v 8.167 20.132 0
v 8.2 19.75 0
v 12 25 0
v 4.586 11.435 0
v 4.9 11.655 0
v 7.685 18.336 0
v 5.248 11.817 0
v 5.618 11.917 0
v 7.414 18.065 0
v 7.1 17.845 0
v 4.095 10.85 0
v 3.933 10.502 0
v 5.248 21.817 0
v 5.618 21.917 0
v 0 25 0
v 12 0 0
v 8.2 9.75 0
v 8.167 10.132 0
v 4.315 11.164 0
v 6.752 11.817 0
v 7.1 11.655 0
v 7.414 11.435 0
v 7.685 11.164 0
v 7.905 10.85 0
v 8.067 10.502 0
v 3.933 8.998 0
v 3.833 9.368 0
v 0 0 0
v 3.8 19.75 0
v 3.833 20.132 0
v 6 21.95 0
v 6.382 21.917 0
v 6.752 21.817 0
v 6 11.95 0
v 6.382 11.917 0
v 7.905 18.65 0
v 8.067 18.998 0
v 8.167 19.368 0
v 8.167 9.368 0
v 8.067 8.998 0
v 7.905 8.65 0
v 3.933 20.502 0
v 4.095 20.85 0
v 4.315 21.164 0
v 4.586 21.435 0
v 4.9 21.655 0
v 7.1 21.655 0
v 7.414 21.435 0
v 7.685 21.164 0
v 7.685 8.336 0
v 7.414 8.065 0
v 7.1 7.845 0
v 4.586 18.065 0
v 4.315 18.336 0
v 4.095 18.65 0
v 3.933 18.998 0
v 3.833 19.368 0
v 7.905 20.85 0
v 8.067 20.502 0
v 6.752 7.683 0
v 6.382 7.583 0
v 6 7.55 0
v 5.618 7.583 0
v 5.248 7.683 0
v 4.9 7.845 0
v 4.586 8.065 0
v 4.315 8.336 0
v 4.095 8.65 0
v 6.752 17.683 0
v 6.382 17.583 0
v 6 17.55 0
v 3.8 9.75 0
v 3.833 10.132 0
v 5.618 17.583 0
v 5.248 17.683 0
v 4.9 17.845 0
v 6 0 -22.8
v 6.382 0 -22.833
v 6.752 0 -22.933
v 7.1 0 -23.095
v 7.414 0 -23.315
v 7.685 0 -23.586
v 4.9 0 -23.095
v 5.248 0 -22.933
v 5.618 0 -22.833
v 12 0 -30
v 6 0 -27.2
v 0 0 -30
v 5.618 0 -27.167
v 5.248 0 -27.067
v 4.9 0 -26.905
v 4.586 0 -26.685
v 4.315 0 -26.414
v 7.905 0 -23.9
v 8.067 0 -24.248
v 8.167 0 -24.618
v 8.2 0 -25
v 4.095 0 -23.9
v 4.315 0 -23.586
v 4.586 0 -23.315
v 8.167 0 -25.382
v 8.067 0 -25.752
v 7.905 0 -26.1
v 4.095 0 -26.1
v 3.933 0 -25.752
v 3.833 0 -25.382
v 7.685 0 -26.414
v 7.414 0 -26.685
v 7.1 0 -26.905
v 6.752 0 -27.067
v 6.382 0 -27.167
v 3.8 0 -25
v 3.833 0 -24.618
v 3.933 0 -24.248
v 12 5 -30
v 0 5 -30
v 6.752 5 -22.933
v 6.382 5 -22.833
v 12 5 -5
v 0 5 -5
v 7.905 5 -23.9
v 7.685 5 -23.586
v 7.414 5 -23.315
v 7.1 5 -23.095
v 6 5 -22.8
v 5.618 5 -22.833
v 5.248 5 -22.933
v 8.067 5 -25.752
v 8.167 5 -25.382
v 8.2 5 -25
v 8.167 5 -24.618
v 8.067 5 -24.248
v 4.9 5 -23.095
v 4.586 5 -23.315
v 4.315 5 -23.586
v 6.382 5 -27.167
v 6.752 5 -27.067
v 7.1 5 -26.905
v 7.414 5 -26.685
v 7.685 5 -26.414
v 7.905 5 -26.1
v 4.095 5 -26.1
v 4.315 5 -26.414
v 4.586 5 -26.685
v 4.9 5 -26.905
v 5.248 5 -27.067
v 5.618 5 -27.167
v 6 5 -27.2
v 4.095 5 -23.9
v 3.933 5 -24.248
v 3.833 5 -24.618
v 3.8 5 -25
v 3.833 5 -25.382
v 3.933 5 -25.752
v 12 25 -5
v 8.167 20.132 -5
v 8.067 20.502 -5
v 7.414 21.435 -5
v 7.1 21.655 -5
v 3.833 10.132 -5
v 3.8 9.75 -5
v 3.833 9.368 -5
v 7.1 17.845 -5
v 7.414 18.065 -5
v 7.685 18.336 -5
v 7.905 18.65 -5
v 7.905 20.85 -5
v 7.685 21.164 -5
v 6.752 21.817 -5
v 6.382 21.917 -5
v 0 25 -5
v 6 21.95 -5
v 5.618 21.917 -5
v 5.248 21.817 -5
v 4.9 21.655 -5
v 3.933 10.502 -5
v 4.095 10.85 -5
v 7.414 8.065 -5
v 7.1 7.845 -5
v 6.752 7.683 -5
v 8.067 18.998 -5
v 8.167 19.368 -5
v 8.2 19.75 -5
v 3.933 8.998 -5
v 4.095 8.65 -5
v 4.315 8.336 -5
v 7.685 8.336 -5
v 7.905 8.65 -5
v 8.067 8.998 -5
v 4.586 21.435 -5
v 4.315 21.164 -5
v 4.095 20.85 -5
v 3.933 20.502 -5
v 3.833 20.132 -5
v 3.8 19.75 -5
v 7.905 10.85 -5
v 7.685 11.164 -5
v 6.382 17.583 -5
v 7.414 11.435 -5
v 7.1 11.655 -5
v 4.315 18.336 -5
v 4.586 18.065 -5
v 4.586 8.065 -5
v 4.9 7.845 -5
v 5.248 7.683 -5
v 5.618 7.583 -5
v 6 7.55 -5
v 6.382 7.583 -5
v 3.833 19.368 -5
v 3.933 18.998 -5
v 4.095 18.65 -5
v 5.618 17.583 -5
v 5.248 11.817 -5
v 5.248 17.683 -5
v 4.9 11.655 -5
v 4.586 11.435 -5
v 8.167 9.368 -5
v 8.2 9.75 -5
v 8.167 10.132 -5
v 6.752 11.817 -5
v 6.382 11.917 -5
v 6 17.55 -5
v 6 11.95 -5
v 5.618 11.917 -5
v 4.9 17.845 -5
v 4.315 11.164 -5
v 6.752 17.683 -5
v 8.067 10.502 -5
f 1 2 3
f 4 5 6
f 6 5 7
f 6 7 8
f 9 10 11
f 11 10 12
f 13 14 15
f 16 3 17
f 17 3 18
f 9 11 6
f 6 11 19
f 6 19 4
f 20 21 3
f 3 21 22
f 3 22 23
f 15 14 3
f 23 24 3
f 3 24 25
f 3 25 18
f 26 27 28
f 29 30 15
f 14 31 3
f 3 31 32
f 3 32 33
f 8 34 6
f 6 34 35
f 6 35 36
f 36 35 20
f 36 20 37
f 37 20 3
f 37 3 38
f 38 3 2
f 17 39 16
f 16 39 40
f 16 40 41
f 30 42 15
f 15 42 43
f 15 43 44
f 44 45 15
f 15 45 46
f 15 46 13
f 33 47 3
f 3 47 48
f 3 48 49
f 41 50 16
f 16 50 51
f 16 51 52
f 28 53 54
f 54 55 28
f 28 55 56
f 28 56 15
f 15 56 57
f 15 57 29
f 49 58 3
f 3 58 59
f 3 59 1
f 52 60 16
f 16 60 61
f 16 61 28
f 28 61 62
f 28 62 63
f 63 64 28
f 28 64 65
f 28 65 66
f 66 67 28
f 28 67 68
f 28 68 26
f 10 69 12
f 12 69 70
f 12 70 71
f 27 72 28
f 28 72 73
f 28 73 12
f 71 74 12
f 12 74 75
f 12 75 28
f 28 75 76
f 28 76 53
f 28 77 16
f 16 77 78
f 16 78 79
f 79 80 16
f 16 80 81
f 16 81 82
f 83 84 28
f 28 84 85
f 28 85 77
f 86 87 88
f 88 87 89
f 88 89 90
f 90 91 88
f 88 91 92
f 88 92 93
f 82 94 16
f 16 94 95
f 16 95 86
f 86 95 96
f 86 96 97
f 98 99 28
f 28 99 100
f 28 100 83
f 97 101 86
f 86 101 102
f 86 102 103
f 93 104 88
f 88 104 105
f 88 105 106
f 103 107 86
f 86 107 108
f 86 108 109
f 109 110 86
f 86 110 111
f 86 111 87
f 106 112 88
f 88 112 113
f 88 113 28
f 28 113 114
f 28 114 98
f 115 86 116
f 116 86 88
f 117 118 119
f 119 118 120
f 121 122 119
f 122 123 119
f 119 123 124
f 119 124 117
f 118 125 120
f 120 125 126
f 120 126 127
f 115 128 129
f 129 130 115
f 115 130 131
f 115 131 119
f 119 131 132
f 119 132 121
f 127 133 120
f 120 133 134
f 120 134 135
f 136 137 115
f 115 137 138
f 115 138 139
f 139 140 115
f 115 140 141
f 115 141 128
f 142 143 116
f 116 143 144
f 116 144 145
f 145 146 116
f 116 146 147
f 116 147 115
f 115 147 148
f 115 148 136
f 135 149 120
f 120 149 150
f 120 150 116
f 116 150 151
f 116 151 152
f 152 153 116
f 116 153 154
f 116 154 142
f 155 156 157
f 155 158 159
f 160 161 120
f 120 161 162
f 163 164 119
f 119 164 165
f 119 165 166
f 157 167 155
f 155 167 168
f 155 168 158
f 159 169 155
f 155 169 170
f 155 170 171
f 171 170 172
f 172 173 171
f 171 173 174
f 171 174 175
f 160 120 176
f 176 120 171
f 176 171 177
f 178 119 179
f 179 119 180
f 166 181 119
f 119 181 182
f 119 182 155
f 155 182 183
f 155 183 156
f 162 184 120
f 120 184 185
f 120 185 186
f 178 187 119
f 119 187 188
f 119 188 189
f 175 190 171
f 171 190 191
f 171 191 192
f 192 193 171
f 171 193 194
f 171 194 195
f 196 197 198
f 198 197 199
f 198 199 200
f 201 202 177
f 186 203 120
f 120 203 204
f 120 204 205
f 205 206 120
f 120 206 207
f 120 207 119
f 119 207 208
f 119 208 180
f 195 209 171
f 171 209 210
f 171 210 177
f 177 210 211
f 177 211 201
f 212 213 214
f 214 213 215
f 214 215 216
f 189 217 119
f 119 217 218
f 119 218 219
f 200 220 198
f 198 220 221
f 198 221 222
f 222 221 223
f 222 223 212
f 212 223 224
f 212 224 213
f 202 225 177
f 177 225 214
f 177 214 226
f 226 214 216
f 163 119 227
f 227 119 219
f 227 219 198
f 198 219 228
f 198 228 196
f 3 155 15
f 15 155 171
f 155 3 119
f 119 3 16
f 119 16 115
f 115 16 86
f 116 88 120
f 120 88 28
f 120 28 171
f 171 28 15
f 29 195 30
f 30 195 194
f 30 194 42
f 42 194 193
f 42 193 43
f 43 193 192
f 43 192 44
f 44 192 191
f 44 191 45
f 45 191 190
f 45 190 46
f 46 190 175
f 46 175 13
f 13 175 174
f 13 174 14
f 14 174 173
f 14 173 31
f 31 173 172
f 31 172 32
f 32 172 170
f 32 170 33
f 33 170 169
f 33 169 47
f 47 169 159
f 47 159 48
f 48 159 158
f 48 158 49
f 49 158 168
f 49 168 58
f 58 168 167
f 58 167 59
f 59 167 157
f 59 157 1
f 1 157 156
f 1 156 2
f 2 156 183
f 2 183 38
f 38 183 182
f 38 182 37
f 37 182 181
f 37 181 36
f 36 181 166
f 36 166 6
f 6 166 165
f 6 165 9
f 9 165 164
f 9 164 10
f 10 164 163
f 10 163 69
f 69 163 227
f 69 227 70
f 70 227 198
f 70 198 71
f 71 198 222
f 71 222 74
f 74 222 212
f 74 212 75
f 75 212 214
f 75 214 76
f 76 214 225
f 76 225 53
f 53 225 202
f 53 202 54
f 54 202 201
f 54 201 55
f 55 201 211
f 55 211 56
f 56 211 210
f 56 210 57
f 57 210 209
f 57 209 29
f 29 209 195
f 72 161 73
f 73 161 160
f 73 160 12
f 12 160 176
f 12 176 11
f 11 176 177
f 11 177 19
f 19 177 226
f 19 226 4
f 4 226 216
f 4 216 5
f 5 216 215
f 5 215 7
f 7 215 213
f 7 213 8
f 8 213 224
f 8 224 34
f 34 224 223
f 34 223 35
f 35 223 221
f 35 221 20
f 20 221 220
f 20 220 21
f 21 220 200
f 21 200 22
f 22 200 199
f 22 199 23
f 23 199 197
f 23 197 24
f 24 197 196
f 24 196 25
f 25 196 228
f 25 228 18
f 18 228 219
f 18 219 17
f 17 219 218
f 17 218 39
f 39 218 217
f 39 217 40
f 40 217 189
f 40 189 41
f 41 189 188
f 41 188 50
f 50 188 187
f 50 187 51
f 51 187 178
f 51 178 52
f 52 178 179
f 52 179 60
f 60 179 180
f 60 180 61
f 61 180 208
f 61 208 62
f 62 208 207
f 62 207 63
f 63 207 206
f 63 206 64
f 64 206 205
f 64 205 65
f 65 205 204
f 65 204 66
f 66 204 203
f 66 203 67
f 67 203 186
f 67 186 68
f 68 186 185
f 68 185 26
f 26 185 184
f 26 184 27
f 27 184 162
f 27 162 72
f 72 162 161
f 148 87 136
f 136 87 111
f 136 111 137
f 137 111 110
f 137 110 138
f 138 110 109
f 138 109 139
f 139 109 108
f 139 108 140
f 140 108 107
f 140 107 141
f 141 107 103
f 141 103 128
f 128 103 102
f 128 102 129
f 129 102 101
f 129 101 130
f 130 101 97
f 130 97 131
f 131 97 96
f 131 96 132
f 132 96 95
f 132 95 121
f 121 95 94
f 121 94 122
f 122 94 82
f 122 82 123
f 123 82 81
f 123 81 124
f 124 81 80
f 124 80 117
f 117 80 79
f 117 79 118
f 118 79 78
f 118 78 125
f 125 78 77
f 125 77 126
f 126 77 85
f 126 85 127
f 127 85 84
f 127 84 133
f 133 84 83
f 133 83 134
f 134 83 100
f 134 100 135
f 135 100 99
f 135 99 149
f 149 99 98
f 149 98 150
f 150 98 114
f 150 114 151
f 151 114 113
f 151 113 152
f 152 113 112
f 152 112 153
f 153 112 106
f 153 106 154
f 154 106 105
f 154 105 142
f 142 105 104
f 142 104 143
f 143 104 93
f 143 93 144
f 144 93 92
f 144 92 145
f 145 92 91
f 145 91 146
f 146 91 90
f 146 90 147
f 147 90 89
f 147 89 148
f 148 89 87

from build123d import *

# Parameters (mm, degrees)
SKETCH1_W           = 5
SKETCH1_H           = 20
SKETCH1_H_2         = 5
SKETCH1_W_2         = 25
BOSS_EXTRUDE1_DEPTH = 12
SKETCH2_R           = 2.2
CUT_EXTRUDE1_DEPTH  = 12
CUT_EXTRUDE3_DEPTH  = 5


with BuildPart() as part:
    # Sketch1 → Boss-Extrude1 (new body)
    with BuildSketch(Plane(origin=(0, 0, 0), x_dir=(0, 0, -1), z_dir=(1, 0, 0))):
        with Locations((2.5, 15)):
            Rectangle(SKETCH1_W, SKETCH1_H)
        with Locations((2.5, 2.5)):
            Rectangle(SKETCH1_W, SKETCH1_H_2)
        with Locations((17.5, 2.5)):
            Rectangle(SKETCH1_W_2, SKETCH1_H_2)
    extrude(amount=BOSS_EXTRUDE1_DEPTH)

    # Sketch2 → Cut-Extrude1 (cut)
    with BuildSketch(Plane(origin=(0, 0, -5), x_dir=(-1, 0, 0), z_dir=(0, 0, -1))):
        with Locations((-6, 19.75)):
            Circle(SKETCH2_R)
        with Locations((-6, 9.75)):
            Circle(SKETCH2_R)
    extrude(amount=-CUT_EXTRUDE1_DEPTH, mode=Mode.SUBTRACT)

    # Sketch3 → Cut-Extrude3 (cut)
    with BuildSketch(Plane.XZ):
        with BuildLine():
            ThreePointArc((8.2, -25), (7.555634919, -23.444365081), (6, -22.8))
            Line((6, -22.8), (6, -27.2))
            ThreePointArc((6, -27.2), (7.555634919, -26.555634919), (8.2, -25))
        make_face()
        with BuildLine():
            Line((6, -27.2), (6, -22.8))
            ThreePointArc((6, -22.8), (3.8, -25), (6, -27.2))
        make_face()
    extrude(amount=-CUT_EXTRUDE3_DEPTH, mode=Mode.SUBTRACT)


solid = part.part
